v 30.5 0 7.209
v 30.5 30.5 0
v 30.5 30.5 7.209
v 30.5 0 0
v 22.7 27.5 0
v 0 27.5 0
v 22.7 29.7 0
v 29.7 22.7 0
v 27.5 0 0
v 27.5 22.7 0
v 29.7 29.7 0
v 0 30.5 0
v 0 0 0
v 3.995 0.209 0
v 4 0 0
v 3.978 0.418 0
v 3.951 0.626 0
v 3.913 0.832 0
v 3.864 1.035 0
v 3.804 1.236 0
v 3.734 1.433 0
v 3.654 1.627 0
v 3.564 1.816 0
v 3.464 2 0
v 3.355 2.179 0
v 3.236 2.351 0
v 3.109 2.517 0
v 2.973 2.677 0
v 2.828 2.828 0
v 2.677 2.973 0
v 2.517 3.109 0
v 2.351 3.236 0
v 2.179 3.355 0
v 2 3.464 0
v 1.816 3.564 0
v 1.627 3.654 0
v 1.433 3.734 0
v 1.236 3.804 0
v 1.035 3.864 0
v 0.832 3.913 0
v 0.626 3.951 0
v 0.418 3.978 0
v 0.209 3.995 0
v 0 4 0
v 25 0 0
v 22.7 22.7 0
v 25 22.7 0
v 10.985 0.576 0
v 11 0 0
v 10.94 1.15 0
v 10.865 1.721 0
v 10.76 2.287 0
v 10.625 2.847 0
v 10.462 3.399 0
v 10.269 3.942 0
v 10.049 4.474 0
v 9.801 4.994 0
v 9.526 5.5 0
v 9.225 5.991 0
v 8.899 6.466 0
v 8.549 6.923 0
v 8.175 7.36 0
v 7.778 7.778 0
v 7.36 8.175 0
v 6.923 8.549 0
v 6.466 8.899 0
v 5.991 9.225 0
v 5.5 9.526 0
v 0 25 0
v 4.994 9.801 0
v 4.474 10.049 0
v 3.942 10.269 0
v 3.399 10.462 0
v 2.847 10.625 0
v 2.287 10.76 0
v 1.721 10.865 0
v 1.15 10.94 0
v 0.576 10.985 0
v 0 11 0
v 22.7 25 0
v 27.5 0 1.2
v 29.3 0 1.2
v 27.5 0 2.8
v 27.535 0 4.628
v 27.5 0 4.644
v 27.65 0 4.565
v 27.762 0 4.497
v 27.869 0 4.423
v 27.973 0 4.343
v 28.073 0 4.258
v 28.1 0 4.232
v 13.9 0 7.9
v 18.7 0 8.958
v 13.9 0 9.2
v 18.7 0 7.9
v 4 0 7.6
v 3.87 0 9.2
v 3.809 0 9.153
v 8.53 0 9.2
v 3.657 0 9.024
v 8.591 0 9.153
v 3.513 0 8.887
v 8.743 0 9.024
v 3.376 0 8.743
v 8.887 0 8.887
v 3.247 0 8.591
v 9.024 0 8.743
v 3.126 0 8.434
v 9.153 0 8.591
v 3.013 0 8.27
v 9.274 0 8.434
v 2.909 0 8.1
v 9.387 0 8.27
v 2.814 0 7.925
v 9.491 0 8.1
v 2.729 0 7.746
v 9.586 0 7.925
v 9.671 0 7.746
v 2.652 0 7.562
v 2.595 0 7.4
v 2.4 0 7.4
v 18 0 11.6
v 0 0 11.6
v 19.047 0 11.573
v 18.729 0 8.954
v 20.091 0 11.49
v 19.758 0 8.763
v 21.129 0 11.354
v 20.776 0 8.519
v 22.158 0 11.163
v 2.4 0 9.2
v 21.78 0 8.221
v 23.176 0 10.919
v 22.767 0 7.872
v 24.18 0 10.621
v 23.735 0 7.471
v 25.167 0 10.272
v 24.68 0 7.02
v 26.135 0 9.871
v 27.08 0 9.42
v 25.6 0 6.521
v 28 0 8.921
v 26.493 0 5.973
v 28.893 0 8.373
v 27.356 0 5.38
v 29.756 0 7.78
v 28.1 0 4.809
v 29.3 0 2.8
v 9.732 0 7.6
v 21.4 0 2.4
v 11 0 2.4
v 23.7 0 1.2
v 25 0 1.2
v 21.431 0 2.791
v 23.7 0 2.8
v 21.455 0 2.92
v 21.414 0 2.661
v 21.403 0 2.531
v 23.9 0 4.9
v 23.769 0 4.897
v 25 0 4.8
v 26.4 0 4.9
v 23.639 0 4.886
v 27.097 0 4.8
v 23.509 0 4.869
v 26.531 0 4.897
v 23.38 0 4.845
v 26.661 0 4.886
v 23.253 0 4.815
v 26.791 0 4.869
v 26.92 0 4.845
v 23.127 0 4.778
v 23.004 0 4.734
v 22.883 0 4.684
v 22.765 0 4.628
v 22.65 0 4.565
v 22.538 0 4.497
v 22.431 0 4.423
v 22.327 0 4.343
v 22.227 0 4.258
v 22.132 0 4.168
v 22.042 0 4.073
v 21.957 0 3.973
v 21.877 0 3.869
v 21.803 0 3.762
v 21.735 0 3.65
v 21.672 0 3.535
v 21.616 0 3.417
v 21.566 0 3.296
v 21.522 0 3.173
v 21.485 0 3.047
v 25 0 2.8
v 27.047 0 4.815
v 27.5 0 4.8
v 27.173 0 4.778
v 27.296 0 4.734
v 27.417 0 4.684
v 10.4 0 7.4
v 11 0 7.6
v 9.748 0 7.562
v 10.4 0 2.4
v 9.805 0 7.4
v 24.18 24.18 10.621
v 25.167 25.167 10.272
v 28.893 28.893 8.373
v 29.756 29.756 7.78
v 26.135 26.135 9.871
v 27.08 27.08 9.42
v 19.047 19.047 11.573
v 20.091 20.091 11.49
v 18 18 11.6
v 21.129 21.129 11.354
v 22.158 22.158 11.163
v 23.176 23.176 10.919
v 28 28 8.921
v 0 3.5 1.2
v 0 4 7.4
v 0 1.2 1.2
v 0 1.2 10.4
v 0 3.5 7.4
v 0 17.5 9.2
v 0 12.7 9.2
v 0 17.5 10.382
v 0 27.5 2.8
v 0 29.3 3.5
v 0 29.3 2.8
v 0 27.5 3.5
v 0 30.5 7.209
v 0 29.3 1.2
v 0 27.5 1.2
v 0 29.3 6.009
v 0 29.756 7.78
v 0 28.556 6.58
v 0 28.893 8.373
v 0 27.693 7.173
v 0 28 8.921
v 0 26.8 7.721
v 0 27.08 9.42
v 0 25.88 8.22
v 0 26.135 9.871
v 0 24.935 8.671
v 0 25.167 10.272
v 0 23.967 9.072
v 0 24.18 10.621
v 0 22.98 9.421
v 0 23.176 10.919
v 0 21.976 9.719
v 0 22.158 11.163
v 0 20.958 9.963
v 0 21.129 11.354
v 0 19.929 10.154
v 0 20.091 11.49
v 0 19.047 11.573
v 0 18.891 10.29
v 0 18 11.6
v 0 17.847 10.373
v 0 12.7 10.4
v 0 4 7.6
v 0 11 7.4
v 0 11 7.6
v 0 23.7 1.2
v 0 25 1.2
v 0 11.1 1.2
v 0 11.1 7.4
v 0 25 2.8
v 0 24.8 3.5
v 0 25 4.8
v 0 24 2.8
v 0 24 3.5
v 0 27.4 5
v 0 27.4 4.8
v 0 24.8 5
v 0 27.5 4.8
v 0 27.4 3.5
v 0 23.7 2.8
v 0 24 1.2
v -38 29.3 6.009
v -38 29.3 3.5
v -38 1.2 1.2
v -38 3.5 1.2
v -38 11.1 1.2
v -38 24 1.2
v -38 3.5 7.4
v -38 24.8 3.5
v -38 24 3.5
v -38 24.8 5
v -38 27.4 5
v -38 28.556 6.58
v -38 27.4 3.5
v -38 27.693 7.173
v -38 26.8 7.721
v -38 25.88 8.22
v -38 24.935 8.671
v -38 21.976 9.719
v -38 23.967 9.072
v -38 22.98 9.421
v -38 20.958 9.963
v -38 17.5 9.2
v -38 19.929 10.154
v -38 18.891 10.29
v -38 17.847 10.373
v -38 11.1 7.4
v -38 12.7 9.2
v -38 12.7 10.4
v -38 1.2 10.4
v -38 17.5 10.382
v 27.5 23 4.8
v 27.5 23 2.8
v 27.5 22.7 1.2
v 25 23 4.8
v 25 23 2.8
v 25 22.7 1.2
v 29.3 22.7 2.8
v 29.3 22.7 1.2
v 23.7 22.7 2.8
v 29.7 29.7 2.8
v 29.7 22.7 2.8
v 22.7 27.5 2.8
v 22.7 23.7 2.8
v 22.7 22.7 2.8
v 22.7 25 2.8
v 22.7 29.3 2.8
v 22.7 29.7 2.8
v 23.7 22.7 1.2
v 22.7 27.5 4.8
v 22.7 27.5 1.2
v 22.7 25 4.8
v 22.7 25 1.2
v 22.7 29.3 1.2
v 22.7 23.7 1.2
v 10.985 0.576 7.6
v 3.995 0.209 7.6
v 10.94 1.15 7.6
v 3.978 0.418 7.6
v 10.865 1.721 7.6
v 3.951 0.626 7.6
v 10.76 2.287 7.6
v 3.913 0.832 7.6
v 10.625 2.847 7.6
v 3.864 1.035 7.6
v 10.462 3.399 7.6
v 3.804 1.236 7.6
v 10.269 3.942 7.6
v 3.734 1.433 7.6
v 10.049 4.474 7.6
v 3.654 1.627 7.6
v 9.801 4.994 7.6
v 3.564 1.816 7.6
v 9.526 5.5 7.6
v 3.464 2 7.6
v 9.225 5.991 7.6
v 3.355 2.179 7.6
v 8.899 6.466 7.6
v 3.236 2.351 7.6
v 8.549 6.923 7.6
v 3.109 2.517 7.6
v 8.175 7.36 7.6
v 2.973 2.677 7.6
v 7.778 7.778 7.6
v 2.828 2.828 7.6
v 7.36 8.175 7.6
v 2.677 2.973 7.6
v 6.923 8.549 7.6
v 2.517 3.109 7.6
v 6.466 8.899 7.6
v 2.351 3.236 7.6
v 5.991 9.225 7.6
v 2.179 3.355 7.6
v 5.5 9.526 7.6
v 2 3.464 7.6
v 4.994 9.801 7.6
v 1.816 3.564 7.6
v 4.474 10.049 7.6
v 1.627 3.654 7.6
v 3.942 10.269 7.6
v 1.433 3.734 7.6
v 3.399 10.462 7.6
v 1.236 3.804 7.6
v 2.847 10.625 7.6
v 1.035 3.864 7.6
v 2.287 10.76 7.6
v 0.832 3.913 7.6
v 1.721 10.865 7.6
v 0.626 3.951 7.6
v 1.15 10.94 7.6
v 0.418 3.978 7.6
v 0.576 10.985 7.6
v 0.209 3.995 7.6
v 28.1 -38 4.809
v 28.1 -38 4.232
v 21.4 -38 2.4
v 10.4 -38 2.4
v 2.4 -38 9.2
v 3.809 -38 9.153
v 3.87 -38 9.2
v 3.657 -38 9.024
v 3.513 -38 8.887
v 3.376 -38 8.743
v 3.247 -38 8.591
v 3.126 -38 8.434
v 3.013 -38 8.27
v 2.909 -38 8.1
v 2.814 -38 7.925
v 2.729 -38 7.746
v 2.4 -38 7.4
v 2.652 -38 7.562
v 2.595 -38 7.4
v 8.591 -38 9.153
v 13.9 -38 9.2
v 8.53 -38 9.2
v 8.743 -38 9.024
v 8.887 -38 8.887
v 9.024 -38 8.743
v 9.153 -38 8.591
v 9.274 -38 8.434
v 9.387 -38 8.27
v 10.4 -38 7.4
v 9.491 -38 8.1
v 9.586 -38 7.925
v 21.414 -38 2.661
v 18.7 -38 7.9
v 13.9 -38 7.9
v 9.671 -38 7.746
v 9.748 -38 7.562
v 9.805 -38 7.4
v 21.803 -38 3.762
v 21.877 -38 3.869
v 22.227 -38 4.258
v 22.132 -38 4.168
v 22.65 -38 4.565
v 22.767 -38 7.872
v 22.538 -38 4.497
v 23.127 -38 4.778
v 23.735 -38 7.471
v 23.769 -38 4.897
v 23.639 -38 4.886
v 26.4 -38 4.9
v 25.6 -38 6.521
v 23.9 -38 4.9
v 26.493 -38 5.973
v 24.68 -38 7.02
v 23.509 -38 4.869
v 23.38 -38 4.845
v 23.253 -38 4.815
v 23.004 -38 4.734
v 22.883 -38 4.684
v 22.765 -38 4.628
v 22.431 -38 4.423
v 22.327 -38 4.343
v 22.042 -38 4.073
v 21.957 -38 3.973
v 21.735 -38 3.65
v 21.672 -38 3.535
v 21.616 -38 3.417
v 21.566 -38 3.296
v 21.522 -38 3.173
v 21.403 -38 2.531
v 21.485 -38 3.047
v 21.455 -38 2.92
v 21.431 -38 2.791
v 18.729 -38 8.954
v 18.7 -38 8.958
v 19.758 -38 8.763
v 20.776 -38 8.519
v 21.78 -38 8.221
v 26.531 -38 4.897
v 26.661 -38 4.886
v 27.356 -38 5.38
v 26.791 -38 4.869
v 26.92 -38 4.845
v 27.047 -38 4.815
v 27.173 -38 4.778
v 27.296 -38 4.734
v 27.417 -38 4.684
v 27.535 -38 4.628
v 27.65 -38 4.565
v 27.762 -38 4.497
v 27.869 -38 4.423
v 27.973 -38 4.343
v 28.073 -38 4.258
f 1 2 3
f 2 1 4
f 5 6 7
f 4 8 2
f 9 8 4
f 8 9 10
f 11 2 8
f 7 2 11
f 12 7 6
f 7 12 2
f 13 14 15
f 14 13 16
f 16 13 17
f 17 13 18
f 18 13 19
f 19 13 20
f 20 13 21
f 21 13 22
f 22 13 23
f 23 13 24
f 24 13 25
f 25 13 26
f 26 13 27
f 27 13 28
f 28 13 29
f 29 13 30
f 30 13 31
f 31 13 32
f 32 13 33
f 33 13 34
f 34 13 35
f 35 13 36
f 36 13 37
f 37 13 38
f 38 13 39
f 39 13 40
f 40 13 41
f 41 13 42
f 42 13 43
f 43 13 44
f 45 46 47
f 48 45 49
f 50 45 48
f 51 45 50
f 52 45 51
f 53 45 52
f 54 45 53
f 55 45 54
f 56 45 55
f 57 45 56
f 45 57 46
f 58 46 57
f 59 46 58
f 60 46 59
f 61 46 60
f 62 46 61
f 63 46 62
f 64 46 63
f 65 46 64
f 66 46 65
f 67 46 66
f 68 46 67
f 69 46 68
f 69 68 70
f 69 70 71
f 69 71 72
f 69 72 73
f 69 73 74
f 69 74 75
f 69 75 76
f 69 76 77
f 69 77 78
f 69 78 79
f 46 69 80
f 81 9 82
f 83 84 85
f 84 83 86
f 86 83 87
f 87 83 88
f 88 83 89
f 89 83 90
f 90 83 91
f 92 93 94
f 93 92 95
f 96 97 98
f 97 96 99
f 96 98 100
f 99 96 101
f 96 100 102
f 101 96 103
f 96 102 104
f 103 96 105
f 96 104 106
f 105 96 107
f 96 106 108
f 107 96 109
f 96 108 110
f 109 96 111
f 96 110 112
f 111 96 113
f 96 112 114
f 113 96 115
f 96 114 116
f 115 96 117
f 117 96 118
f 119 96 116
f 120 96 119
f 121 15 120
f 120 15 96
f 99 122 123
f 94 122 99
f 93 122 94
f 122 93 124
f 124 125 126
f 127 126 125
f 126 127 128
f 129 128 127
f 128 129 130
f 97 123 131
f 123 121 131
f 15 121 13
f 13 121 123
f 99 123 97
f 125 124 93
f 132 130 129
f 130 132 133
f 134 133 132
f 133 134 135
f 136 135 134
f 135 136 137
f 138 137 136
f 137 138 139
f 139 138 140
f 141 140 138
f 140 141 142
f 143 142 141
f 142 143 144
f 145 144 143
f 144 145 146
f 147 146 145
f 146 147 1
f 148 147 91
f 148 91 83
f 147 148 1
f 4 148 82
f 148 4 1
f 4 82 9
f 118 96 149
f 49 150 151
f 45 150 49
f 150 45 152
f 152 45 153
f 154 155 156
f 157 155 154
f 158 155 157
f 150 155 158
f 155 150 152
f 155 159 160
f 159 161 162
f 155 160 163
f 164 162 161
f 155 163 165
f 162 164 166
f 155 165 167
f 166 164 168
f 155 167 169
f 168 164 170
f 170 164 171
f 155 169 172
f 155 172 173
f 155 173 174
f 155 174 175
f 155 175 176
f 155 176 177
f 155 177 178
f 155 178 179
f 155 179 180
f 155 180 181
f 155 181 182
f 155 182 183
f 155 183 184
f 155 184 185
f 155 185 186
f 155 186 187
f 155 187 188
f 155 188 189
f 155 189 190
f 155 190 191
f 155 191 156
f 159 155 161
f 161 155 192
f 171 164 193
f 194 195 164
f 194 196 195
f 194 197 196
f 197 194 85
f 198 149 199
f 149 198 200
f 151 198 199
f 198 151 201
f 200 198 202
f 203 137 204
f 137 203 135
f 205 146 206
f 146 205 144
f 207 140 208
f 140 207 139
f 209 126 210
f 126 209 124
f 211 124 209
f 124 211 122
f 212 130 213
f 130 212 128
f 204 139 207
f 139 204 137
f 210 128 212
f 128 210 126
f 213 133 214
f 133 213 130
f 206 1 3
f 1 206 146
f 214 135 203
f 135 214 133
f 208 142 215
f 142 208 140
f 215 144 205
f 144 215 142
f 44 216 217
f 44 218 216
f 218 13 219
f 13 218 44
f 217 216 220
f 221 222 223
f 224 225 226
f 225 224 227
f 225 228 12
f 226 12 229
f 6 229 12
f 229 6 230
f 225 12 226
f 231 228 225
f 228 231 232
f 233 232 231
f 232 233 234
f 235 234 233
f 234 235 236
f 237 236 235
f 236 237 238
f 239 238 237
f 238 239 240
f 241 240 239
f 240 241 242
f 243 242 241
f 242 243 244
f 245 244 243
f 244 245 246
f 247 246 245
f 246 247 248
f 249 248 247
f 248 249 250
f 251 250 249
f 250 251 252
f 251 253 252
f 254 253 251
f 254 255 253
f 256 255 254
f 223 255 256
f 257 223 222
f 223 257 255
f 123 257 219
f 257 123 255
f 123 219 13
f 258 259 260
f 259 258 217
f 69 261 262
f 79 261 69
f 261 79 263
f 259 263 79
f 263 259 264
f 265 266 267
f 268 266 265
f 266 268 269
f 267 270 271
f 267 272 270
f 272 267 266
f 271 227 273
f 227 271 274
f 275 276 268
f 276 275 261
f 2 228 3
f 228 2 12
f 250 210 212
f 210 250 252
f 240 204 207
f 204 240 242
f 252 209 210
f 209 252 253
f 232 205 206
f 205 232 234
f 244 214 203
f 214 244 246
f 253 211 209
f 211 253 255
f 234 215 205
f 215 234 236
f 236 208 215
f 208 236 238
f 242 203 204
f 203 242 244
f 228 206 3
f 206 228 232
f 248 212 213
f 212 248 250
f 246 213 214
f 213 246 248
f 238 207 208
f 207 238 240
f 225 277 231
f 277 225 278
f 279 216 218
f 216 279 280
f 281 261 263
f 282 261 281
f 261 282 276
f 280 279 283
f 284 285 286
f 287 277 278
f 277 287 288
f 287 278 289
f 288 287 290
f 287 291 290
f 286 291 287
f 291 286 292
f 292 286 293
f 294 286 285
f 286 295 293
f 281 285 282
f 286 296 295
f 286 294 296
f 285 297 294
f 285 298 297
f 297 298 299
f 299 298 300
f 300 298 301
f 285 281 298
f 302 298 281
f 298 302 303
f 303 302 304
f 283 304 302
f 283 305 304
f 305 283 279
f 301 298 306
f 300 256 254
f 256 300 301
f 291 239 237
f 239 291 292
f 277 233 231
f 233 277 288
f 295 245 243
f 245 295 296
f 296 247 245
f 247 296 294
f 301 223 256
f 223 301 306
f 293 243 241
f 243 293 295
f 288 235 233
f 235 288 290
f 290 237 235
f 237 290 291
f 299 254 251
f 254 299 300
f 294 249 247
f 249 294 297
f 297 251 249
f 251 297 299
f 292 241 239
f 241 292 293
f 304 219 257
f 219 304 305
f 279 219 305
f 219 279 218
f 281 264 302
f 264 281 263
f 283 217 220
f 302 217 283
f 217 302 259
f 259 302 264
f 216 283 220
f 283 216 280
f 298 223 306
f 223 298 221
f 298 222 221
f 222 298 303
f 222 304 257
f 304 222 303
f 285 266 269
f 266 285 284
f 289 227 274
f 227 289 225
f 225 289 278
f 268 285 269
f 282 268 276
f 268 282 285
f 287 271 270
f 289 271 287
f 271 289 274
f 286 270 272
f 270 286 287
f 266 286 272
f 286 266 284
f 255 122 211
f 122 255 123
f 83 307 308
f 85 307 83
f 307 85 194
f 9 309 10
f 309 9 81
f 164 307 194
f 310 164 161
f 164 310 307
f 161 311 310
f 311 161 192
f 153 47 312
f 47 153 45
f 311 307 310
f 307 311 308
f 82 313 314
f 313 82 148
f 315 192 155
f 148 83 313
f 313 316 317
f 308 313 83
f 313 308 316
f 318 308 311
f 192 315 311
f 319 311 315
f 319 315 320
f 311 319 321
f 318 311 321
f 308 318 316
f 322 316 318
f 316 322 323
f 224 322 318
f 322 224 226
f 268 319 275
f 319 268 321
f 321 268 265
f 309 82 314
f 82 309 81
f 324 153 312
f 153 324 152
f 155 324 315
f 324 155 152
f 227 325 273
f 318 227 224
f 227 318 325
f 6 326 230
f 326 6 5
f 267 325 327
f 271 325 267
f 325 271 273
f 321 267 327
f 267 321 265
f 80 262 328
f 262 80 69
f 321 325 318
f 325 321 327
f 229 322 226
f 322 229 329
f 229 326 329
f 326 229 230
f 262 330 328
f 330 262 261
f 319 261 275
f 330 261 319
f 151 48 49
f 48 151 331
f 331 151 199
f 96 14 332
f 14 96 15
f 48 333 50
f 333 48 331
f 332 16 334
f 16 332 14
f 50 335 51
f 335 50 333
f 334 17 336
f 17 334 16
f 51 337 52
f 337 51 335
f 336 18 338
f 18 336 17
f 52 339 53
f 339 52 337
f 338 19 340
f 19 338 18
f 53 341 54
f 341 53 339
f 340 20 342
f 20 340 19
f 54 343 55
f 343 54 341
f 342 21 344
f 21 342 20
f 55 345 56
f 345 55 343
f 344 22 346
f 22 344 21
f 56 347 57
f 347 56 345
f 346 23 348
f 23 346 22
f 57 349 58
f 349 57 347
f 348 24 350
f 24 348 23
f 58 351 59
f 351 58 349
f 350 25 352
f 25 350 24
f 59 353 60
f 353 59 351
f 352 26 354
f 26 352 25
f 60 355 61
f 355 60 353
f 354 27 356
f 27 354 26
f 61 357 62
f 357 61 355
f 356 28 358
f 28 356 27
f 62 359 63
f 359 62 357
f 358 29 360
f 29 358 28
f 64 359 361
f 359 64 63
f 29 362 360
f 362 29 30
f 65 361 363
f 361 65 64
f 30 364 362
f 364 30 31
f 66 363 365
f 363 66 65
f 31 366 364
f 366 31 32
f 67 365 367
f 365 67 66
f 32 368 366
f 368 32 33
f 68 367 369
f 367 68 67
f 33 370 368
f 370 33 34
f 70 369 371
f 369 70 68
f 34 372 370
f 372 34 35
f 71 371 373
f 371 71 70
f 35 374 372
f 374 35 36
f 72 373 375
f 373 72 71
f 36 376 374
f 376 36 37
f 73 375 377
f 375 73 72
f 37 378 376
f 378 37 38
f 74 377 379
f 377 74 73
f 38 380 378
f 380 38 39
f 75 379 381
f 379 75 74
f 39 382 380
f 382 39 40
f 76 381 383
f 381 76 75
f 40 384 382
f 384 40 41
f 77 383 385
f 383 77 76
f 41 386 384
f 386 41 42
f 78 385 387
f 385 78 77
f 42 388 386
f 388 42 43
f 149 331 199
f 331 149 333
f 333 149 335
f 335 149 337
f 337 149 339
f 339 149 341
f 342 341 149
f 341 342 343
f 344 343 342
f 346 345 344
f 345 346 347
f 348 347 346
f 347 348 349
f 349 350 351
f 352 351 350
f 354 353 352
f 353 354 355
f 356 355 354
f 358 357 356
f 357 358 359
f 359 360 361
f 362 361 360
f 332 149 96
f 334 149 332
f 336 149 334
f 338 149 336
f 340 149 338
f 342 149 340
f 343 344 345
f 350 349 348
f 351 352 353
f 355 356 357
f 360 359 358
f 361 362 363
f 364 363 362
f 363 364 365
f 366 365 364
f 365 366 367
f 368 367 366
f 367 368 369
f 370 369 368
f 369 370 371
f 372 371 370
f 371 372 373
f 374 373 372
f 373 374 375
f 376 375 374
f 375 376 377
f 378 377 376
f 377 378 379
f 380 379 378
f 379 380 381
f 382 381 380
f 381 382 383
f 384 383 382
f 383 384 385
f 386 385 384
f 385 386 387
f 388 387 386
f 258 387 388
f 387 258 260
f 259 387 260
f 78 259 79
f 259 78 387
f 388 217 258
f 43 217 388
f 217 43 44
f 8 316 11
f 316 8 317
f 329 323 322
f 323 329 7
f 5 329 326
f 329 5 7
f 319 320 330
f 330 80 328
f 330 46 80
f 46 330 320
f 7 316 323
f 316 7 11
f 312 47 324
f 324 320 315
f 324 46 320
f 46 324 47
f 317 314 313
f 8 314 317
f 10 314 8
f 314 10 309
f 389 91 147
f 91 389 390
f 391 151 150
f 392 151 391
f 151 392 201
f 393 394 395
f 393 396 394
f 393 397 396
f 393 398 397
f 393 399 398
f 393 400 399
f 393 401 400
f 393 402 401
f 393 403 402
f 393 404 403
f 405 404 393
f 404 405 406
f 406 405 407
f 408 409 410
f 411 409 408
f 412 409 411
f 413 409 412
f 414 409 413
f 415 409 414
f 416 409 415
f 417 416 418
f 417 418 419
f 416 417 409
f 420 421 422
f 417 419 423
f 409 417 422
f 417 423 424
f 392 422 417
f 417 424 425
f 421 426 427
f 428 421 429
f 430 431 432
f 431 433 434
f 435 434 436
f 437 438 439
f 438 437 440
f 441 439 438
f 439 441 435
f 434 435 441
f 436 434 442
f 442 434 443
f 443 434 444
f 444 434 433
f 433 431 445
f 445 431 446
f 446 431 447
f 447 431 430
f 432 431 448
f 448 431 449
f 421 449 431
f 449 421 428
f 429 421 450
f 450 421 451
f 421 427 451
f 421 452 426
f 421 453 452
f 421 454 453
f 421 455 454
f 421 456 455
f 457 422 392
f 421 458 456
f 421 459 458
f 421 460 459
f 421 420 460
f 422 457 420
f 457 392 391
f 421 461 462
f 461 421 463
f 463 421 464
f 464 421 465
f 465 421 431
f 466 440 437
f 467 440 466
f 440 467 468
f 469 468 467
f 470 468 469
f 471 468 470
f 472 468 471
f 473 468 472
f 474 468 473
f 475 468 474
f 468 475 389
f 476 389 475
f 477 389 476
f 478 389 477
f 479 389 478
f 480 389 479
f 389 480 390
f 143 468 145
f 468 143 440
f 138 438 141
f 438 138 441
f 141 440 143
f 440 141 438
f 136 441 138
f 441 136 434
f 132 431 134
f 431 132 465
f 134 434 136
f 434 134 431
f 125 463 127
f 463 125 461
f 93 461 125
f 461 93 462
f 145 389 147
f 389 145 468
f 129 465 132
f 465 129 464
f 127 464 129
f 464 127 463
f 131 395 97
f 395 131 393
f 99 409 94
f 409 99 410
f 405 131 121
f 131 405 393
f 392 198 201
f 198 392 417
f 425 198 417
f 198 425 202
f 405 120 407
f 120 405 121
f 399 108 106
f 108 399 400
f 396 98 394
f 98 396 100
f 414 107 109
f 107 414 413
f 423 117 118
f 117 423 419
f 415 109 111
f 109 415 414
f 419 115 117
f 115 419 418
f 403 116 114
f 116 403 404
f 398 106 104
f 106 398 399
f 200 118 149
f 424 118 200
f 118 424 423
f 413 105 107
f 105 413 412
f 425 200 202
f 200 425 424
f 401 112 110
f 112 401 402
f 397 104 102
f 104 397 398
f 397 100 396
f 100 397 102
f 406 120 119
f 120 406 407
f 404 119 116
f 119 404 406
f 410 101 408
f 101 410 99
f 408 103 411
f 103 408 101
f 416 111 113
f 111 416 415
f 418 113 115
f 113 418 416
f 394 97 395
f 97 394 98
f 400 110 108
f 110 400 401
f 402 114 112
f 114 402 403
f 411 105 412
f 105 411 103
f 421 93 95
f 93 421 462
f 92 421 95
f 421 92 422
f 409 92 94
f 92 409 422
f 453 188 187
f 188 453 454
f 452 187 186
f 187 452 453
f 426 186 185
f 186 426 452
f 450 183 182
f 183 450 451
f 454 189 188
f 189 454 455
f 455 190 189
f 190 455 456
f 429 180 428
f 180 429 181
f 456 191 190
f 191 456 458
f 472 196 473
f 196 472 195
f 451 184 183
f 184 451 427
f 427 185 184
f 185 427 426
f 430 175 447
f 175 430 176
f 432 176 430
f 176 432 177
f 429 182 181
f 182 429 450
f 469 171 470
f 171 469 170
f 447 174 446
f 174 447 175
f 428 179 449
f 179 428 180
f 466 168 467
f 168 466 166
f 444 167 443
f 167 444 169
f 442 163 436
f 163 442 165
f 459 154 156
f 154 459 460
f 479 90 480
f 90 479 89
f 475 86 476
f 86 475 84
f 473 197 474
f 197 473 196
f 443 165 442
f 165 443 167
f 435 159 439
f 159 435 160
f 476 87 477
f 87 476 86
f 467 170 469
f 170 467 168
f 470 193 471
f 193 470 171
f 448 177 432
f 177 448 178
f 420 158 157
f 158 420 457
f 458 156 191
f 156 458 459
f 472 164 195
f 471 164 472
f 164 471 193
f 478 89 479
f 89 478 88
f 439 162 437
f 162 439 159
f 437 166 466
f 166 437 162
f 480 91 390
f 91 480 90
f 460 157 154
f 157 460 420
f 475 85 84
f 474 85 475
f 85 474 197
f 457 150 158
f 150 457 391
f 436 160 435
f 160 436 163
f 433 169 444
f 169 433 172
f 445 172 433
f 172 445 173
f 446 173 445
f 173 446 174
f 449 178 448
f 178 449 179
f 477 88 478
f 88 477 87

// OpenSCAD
//
// mensi cast 18x18mm
cp1 = 30.5;
roh1 = 18;
vroh1 = 11.6;
oble = 40;
delkavnej = 38;
$fn=120;

module tesneni(delka) {
    // profil pro tesneni cast1 (sirka 2.5 vyska 4.8 offset_x 25 )
    translate([1.3,0,0]) cube([2.5,delka,4.8]);
    // profil pro tesneni cast2 (sirka 5.6 vyska 1.6 offset_x 23.7 offset_z 1.2)  
    translate([0,0,1.2]) cube([5.6,delka,1.6]);
}

module centralpart () {
 difference() {
  union() {  
  cube([roh1,roh1,vroh1]);
  intersection(){
       translate([roh1,0,0]) cube([cp1-roh1,cp1,vroh1]);
       translate([roh1,0,vroh1-oble/2]) rotate([270,0,0]) cylinder(d=oble,h=roh1);
      }
  intersection(){
       translate([0,roh1,0]) cube([cp1,cp1-roh1,vroh1]);
       translate([0,roh1,vroh1-oble/2]) rotate([180,270,0]) cylinder(d=oble,h=roh1);
      }
  intersection(){
       translate([roh1,roh1,0]) cube([cp1-roh1,cp1-roh1,vroh1]);
       translate([roh1,roh1,vroh1-oble/2]) rotate([180,270,0]) cylinder(d=oble,h=roh1);
       translate([roh1,roh1,vroh1-oble/2]) rotate([270,0,0]) cylinder(d=oble,h=roh1);
      }
  } // plna cast
  union() { 
    // zahnuty profil vnitrni d=4 vnejsi d=10 stred je roh ctverce
    rotate_extrude(angle = 90) translate([4,0]) square(size = [7, 7.6], center = [10,0,0]);
    // tesneni jednim smerem
    translate([23.7,0,0]) tesneni(cp1-7.5);  
    // tesneni druhym smerem
    rotate([0,0,90]) translate([23.7,-22.7,0]) tesneni(cp1-7.5);  
    // vkladaci otvor
    translate([22.7,22.7,0]) cube([7,7,2.8]);  
  } // vyrezy    
 } // difference
}  

module vnejsiprofil() {
  offset=1.2;  
  translate([offset,0,offset]) 
   difference() {
    union() { 
    cube([roh1-2*offset,delkavnej,vroh1-2*offset]);  
    intersection(){
      translate([roh1-2*offset,0,0]) cube([cp1-roh1,delkavnej,vroh1]);
      translate([roh1-2*offset,0,vroh1-oble/2-2*offset]) rotate([270,0,0]) cylinder(d=oble,h=delkavnej);
     }
    } // hlavni cast   
    union() {
      // velky vyrez
      translate([2.3,0,0]) cube([7.6,delkavnej,6.2]);  
      // drazka pro uchycovaci pasek  
      translate([11.5,0,vroh1-3*offset]) cube([4.8,delkavnej,1.3]);  
      // drazky v prostoru tesneni
      translate([22.8,0,0]) cube([7.0,delkavnej,2.3]);  
      translate([23.6,0,0]) cube([2.6,delkavnej,3.8]);  
    } // odebirane casti
  } // difference 
}

module vnitrniprofil() {
    offset=2.4;
    translate([offset,0,offset]) 
    difference() {
    union() { cube([roh1-2*offset,delkavnej,vroh1-2*offset]);  
              intersection(){
                 translate([roh1-2*offset,0,0]) cube([cp1-roh1,delkavnej,vroh1]);
                 translate([roh1-2*offset,0,vroh1-oble/2-2*offset]) rotate([270,0,0]) cylinder(d=oble,h=delkavnej);
                }
            }
    union() {
      // velky vyrez
      translate([0,0,-1]) cube([8.0,delkavnej,6]);  
      translate([-1,0,-1]) cube([7.6,delkavnej,6]);  
      translate([3.8,0,3.8]) rotate([270,0,0]) cylinder(d=7.6,h=delkavnej);  
      // drazka pro uchycovaci pasek  
      translate([11.5,0,vroh1-2*offset-1.3]) cube([4.8,delkavnej,1.3]);  
      // vybrani u spicky dva valce d=5 a mezi stredy vzdalenost 2.5 fce hull
      translate([cp1-9,0,0]) rotate([270,0,0]) hull() { 
         cylinder(d=5, h=delkavnej);
         translate([2.5,0,0]) cylinder(d=5, h=delkavnej);
        }  
    } // odebirane casti
  } // difference          
}

centralpart();
translate([0,-delkavnej,0]) vnitrniprofil();
translate([0,0,0]) rotate([0,0,90]) vnejsiprofil();
// tesneni(delkavnej);
//vnitrniprofil();
